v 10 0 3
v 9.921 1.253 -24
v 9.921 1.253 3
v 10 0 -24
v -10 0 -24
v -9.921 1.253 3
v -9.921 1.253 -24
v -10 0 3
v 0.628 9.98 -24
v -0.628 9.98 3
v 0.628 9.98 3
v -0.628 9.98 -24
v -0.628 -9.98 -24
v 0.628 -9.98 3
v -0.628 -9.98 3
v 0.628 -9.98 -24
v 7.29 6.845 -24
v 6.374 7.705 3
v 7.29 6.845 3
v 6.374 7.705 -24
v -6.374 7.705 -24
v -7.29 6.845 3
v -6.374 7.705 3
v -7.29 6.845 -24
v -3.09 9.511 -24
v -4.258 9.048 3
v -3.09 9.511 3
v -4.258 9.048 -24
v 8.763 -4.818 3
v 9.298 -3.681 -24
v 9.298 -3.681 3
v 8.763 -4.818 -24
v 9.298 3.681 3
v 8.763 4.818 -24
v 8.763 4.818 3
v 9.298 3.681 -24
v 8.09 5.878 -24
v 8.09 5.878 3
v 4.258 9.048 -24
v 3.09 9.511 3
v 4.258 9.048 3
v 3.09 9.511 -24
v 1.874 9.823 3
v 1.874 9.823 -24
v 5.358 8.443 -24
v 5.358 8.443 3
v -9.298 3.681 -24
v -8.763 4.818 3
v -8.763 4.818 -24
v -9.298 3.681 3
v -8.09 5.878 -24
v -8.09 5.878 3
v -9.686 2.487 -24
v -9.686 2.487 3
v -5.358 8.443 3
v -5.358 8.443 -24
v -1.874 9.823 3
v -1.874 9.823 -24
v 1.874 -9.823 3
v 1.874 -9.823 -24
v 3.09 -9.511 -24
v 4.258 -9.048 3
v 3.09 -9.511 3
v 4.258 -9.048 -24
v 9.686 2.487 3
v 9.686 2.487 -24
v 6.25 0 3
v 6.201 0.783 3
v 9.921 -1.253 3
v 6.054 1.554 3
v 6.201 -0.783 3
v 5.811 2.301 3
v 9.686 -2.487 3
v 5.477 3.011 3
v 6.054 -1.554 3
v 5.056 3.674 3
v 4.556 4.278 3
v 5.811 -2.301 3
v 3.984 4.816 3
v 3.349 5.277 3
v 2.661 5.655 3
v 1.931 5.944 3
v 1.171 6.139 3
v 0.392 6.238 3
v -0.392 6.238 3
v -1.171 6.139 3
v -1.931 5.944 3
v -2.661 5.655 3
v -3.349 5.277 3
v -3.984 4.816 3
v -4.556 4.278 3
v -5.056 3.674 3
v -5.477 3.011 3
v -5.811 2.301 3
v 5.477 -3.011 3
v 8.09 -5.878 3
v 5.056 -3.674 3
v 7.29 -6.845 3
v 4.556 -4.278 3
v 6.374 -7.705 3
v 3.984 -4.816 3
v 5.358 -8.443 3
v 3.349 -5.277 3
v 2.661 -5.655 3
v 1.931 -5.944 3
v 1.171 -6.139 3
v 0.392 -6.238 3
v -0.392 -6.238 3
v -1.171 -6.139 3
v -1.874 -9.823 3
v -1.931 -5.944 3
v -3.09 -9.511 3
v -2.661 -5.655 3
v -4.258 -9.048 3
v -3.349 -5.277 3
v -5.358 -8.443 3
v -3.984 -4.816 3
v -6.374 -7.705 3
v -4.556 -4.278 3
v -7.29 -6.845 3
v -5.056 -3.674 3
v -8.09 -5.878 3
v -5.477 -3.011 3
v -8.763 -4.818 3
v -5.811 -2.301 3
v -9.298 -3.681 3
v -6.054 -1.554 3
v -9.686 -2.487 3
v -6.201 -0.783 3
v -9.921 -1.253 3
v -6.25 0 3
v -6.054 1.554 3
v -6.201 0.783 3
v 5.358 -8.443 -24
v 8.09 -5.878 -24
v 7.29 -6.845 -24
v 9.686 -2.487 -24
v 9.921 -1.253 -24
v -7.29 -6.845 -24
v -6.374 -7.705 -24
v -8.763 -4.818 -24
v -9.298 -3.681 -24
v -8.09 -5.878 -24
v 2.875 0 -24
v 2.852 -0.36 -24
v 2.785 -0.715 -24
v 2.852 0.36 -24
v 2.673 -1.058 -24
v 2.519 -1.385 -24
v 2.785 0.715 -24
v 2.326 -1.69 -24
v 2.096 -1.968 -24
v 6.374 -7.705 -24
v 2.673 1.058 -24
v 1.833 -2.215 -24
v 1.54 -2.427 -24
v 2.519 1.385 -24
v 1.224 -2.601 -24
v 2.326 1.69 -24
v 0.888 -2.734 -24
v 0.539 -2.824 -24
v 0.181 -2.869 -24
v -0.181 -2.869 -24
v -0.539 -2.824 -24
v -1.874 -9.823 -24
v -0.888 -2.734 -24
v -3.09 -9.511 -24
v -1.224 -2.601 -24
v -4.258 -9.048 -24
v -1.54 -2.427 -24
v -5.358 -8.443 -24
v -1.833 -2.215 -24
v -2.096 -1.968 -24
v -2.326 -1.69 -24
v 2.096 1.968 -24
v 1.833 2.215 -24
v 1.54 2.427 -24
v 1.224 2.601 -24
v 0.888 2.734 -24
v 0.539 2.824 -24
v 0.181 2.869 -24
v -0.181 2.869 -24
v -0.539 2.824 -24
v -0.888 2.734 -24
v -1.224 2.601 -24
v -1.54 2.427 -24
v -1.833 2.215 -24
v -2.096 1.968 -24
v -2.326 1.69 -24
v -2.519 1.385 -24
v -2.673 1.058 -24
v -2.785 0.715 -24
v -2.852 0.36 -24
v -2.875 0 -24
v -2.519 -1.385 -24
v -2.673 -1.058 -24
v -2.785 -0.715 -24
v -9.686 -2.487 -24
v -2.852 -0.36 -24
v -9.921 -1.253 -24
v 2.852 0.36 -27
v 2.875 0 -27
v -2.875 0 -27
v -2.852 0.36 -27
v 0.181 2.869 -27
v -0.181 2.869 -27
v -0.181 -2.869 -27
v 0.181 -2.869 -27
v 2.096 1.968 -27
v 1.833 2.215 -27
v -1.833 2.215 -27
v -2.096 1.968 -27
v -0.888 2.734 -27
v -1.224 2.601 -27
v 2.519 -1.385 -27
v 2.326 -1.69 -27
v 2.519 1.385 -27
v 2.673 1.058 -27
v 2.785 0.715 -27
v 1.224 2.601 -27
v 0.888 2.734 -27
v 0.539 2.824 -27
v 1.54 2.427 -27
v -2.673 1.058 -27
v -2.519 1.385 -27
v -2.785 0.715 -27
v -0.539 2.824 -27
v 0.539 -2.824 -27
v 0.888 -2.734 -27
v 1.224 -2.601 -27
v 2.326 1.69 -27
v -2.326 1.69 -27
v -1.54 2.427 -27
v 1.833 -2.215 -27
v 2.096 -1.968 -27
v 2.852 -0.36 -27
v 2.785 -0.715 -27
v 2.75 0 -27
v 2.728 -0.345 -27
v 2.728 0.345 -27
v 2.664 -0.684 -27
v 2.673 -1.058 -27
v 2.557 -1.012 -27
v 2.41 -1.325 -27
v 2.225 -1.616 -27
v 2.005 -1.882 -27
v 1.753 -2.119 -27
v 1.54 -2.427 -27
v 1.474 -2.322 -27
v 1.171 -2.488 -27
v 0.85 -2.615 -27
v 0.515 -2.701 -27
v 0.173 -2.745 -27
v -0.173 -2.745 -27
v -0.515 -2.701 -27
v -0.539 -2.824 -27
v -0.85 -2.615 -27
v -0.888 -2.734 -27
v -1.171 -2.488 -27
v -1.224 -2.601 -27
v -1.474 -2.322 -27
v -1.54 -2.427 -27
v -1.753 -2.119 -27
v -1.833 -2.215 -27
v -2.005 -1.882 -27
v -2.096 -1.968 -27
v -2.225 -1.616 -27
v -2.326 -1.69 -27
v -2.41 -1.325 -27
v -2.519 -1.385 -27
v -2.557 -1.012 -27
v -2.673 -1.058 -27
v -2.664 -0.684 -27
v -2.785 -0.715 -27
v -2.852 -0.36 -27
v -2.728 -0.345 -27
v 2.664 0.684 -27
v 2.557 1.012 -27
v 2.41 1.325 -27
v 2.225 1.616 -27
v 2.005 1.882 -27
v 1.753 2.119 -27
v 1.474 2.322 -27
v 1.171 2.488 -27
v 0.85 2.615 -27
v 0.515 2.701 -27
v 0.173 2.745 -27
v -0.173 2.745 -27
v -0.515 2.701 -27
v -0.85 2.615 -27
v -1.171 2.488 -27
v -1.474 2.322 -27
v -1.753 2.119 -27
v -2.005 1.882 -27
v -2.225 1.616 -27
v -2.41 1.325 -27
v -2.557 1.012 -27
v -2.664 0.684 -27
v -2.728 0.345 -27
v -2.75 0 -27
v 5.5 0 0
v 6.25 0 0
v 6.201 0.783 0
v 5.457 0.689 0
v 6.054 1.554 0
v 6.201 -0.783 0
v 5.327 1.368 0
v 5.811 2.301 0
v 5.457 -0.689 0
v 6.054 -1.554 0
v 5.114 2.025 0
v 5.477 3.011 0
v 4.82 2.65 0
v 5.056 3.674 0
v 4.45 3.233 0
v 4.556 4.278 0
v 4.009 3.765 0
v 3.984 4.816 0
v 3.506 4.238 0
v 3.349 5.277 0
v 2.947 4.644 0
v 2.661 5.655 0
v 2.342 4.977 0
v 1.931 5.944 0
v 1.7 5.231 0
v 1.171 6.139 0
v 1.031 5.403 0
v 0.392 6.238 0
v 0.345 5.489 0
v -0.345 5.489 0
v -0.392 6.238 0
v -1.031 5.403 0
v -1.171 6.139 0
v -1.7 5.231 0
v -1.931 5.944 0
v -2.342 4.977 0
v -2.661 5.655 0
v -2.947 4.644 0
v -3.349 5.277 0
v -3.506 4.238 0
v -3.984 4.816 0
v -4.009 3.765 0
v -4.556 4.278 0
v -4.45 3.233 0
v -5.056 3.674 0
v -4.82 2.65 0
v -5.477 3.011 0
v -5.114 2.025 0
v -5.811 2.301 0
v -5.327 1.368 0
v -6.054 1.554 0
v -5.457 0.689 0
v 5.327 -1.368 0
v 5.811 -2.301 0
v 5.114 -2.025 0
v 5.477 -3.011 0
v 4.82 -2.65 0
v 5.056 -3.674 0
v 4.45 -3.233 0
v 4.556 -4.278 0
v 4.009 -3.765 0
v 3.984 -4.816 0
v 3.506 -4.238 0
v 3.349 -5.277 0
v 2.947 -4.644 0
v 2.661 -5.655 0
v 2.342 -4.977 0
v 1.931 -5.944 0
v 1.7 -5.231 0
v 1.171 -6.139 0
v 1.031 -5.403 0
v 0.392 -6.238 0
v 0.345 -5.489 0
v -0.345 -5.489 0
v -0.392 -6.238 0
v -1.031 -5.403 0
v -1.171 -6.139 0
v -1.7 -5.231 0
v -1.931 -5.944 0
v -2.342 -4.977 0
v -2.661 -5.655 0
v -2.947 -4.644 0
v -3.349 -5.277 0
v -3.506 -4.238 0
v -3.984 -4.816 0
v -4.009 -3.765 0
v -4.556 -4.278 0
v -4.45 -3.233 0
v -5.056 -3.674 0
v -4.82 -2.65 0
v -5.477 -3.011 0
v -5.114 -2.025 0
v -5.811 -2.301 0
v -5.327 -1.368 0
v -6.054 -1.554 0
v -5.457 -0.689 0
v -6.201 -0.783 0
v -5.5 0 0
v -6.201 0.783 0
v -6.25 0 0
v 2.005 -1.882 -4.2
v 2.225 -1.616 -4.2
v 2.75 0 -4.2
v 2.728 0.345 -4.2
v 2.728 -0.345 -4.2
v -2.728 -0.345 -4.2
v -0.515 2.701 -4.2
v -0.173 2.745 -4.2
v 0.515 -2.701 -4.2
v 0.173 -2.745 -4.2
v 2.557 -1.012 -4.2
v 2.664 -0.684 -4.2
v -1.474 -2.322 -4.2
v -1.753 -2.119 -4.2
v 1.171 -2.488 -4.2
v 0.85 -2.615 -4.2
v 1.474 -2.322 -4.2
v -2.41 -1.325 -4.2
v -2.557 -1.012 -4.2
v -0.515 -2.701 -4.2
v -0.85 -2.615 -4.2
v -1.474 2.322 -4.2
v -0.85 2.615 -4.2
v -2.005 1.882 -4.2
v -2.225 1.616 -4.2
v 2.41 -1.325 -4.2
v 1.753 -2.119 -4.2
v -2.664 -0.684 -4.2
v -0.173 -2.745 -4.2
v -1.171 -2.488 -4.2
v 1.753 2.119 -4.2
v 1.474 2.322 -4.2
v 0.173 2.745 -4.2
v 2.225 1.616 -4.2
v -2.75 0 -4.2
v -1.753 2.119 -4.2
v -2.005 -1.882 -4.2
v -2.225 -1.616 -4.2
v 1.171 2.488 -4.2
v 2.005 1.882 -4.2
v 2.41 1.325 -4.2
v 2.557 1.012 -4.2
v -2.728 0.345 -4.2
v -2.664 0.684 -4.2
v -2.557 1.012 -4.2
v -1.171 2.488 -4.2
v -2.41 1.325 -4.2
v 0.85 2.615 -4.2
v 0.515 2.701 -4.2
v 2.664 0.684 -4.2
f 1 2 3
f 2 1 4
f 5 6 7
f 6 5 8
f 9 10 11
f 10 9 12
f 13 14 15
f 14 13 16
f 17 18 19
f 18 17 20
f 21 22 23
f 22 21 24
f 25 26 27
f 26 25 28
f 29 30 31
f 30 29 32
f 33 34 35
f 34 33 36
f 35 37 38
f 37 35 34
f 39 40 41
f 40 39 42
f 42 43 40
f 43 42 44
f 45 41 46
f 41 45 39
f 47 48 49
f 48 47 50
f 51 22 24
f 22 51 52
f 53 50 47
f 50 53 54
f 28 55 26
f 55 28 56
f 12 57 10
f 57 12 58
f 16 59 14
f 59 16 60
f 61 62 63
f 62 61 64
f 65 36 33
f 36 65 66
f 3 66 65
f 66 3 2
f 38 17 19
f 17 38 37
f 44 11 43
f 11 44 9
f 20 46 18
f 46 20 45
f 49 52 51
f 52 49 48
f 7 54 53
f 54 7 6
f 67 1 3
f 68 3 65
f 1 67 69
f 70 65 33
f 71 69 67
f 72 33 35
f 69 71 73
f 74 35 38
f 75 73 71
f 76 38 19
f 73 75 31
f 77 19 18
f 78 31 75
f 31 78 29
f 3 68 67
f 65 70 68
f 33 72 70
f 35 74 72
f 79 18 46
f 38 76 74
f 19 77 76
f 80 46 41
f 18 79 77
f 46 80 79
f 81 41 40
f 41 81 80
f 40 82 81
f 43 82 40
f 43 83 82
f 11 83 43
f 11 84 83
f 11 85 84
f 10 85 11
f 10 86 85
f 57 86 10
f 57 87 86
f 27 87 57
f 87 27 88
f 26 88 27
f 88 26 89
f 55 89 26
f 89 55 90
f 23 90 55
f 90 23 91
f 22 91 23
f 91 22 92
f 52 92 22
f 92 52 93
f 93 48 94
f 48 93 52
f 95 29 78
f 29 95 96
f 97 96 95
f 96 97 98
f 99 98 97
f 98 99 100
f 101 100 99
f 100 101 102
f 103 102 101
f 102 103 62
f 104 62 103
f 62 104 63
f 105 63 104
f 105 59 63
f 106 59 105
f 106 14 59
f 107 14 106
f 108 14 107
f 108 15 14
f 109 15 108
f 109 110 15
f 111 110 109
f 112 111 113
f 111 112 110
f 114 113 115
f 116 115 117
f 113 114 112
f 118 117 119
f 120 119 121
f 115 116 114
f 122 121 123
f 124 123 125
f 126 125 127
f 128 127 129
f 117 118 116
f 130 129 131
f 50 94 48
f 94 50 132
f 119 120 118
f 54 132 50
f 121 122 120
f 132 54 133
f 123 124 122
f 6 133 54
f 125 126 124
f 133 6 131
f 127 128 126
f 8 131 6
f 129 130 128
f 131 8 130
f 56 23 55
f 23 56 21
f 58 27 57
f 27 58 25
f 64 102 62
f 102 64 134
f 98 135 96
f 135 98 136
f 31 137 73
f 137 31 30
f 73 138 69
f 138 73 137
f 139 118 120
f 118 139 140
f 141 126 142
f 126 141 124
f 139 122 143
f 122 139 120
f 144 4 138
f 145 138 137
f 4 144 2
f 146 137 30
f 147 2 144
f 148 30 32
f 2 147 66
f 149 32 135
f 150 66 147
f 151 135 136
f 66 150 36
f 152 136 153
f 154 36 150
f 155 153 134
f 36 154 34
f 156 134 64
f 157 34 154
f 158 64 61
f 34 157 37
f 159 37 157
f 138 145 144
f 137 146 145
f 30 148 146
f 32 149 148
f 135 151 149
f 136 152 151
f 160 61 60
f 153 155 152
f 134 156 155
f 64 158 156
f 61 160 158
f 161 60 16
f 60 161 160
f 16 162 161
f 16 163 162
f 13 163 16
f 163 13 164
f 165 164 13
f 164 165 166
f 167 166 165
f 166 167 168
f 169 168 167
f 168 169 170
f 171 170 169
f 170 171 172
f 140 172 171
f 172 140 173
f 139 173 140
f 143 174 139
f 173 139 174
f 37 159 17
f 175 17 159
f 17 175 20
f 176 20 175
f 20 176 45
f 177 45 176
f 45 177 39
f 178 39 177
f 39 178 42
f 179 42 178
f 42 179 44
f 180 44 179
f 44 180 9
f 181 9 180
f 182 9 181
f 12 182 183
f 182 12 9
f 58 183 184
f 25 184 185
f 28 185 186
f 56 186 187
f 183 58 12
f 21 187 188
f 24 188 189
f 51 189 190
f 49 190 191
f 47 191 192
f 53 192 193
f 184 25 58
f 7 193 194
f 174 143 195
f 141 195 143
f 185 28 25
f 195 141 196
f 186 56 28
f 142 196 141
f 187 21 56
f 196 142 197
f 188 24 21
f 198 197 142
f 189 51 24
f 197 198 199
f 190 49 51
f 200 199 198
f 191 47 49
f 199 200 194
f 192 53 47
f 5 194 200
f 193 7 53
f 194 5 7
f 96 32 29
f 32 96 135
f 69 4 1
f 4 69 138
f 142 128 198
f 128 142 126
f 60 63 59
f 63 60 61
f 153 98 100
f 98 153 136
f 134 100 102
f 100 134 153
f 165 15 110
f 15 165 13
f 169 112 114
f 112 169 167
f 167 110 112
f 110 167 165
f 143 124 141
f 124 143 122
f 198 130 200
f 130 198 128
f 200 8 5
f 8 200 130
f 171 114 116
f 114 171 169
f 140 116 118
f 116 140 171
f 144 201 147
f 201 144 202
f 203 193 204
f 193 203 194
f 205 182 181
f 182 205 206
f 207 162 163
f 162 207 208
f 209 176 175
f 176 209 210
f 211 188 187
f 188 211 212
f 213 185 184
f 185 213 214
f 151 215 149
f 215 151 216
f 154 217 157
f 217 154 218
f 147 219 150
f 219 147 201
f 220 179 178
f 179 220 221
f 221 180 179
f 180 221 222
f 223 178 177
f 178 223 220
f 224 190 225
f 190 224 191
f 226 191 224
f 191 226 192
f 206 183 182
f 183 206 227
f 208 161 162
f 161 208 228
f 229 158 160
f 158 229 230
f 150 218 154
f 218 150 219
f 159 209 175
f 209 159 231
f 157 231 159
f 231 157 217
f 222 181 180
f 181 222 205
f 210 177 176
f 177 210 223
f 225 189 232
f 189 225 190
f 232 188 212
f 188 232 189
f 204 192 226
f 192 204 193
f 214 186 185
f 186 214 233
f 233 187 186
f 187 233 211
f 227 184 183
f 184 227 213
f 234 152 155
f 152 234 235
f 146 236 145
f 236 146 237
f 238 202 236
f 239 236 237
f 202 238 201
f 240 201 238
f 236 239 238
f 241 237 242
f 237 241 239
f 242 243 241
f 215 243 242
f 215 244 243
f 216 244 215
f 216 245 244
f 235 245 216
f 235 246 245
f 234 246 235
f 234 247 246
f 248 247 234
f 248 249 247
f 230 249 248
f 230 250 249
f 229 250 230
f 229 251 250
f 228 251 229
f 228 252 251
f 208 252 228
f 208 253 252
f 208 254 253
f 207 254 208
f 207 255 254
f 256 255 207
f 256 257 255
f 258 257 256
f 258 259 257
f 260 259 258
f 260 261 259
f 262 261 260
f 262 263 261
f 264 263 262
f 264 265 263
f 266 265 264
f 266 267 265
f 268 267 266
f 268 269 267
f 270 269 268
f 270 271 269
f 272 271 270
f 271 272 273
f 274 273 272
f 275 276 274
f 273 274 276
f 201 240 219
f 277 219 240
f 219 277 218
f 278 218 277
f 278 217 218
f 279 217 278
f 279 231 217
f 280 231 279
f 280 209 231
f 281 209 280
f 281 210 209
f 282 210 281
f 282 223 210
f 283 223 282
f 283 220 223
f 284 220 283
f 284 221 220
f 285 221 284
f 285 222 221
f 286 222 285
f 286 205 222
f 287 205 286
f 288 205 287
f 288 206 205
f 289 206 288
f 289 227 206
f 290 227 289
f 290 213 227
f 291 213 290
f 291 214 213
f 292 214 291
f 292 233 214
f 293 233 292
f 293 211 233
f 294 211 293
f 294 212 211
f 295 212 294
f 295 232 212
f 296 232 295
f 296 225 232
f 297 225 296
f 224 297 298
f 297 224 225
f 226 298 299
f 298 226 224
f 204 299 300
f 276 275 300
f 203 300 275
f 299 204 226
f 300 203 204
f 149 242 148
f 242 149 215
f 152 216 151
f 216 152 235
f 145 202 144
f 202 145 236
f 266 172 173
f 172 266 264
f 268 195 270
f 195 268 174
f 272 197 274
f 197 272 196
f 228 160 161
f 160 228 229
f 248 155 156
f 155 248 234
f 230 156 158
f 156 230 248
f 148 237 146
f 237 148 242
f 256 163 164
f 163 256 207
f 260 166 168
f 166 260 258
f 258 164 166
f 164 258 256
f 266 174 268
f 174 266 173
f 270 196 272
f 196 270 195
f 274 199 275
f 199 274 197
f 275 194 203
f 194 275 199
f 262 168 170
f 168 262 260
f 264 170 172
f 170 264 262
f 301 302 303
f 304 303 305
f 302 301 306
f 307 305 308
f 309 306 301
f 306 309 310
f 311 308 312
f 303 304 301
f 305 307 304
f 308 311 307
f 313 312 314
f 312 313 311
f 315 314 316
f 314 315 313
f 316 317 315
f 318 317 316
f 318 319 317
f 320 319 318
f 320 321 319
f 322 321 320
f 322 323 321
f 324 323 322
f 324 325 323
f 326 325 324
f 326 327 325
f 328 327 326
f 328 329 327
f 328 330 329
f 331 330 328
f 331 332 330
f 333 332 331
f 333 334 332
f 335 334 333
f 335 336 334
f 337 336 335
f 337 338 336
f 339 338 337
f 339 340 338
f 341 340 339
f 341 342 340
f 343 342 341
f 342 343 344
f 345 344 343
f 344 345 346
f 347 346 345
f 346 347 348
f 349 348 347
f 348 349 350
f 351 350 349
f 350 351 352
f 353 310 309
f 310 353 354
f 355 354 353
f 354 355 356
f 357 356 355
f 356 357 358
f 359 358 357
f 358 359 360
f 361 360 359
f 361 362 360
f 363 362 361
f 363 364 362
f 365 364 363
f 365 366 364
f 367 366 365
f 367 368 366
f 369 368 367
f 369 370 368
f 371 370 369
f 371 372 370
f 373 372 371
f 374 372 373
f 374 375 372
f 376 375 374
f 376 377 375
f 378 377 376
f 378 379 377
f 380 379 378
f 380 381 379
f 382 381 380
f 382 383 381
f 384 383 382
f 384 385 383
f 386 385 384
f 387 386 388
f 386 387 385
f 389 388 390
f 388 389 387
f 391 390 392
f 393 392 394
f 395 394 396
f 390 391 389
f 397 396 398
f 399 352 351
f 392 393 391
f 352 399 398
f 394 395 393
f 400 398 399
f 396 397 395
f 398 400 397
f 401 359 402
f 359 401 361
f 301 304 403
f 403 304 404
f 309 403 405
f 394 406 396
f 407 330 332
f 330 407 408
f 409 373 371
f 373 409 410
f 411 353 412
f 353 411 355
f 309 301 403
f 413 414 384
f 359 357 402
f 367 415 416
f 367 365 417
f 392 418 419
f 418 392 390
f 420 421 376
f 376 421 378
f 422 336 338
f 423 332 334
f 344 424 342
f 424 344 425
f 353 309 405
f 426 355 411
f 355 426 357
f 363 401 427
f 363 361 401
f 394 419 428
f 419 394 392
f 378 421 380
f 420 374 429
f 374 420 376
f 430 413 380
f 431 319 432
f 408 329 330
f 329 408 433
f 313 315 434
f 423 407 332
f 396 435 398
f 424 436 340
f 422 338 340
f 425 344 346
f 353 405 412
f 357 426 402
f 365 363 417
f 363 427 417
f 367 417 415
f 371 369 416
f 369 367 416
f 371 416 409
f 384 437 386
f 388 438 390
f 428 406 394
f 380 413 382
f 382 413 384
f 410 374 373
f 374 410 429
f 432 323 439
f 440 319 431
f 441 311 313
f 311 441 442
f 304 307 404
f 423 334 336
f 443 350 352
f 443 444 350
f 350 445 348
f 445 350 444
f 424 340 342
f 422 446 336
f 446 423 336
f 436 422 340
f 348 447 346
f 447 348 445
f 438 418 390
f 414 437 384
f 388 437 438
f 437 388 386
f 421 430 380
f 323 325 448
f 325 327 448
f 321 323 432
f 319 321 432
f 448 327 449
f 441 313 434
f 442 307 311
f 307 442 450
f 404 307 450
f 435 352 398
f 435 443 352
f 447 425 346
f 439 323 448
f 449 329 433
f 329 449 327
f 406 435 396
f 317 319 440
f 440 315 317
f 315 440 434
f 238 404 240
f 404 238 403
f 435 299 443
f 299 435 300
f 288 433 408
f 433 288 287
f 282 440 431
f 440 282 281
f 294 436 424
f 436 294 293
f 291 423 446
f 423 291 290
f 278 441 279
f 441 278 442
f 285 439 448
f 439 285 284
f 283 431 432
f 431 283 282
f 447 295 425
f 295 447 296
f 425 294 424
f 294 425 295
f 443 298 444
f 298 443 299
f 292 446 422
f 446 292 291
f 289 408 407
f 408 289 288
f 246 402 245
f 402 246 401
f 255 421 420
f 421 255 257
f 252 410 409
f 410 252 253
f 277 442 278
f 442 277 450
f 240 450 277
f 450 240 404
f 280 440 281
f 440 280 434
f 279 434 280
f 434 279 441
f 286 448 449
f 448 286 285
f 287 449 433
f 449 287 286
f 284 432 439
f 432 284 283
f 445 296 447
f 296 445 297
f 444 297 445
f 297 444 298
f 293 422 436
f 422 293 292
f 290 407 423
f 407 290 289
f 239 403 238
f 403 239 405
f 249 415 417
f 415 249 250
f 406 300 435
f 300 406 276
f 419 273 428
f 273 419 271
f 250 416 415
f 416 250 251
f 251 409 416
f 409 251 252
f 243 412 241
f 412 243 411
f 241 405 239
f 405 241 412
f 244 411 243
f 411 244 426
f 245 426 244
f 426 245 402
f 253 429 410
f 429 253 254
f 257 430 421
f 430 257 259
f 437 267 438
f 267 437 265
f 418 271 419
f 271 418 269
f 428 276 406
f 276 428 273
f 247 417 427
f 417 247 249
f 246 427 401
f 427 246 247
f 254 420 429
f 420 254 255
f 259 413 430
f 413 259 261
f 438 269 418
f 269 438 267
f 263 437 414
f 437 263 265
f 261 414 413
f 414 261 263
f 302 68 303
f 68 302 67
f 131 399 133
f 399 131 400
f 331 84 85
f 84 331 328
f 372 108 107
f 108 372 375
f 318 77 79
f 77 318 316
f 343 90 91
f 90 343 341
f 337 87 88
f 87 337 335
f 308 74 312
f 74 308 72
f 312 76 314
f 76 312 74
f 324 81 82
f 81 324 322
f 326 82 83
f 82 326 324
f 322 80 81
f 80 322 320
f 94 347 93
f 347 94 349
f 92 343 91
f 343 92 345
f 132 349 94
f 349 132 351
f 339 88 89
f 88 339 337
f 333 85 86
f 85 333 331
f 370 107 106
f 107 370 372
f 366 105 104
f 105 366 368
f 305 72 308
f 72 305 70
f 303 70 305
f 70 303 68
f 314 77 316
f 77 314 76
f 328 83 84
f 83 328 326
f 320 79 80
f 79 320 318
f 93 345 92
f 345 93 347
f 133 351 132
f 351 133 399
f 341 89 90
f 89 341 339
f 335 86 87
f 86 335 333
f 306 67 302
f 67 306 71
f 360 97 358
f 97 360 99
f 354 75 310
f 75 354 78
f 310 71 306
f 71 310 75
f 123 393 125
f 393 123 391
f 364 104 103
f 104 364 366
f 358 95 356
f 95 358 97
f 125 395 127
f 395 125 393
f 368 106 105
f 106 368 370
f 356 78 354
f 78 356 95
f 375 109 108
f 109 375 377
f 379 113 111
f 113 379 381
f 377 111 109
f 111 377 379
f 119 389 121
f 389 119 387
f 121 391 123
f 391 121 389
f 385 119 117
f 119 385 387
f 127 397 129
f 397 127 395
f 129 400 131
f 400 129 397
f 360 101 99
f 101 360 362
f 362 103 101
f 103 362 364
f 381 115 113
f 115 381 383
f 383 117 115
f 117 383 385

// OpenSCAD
$fn = 50;


difference() {
	union() {
		translate(v = [0, 0, -24.0000000000]) {
			cylinder(h = 27, r = 10.0000000000);
		}
		#translate(v = [0, 0, -27.0000000000]) {
			cylinder(h = 27, r = 2.8750000000);
		}
	}
	union() {
		translate(v = [0, 0, 0]) {
			rotate(a = [0, 0, 0]) {
				difference() {
					union() {
						translate(v = [0, 0, -27.0000000000]) {
							cylinder(h = 27, r = 2.2500000000);
						}
						translate(v = [0, 0, -4.2000000000]) {
							cylinder(h = 4.2000000000, r1 = 2.7500000000, r2 = 5.5000000000);
						}
						translate(v = [0, 0, -27.0000000000]) {
							cylinder(h = 27, r = 2.7500000000);
						}
						translate(v = [0, 0, -27.0000000000]) {
							cylinder(h = 27, r = 2.2500000000);
						}
					}
					union();
				}
			}
		}
		#cylinder(h = 3, r = 6.2500000000);
	}
}
